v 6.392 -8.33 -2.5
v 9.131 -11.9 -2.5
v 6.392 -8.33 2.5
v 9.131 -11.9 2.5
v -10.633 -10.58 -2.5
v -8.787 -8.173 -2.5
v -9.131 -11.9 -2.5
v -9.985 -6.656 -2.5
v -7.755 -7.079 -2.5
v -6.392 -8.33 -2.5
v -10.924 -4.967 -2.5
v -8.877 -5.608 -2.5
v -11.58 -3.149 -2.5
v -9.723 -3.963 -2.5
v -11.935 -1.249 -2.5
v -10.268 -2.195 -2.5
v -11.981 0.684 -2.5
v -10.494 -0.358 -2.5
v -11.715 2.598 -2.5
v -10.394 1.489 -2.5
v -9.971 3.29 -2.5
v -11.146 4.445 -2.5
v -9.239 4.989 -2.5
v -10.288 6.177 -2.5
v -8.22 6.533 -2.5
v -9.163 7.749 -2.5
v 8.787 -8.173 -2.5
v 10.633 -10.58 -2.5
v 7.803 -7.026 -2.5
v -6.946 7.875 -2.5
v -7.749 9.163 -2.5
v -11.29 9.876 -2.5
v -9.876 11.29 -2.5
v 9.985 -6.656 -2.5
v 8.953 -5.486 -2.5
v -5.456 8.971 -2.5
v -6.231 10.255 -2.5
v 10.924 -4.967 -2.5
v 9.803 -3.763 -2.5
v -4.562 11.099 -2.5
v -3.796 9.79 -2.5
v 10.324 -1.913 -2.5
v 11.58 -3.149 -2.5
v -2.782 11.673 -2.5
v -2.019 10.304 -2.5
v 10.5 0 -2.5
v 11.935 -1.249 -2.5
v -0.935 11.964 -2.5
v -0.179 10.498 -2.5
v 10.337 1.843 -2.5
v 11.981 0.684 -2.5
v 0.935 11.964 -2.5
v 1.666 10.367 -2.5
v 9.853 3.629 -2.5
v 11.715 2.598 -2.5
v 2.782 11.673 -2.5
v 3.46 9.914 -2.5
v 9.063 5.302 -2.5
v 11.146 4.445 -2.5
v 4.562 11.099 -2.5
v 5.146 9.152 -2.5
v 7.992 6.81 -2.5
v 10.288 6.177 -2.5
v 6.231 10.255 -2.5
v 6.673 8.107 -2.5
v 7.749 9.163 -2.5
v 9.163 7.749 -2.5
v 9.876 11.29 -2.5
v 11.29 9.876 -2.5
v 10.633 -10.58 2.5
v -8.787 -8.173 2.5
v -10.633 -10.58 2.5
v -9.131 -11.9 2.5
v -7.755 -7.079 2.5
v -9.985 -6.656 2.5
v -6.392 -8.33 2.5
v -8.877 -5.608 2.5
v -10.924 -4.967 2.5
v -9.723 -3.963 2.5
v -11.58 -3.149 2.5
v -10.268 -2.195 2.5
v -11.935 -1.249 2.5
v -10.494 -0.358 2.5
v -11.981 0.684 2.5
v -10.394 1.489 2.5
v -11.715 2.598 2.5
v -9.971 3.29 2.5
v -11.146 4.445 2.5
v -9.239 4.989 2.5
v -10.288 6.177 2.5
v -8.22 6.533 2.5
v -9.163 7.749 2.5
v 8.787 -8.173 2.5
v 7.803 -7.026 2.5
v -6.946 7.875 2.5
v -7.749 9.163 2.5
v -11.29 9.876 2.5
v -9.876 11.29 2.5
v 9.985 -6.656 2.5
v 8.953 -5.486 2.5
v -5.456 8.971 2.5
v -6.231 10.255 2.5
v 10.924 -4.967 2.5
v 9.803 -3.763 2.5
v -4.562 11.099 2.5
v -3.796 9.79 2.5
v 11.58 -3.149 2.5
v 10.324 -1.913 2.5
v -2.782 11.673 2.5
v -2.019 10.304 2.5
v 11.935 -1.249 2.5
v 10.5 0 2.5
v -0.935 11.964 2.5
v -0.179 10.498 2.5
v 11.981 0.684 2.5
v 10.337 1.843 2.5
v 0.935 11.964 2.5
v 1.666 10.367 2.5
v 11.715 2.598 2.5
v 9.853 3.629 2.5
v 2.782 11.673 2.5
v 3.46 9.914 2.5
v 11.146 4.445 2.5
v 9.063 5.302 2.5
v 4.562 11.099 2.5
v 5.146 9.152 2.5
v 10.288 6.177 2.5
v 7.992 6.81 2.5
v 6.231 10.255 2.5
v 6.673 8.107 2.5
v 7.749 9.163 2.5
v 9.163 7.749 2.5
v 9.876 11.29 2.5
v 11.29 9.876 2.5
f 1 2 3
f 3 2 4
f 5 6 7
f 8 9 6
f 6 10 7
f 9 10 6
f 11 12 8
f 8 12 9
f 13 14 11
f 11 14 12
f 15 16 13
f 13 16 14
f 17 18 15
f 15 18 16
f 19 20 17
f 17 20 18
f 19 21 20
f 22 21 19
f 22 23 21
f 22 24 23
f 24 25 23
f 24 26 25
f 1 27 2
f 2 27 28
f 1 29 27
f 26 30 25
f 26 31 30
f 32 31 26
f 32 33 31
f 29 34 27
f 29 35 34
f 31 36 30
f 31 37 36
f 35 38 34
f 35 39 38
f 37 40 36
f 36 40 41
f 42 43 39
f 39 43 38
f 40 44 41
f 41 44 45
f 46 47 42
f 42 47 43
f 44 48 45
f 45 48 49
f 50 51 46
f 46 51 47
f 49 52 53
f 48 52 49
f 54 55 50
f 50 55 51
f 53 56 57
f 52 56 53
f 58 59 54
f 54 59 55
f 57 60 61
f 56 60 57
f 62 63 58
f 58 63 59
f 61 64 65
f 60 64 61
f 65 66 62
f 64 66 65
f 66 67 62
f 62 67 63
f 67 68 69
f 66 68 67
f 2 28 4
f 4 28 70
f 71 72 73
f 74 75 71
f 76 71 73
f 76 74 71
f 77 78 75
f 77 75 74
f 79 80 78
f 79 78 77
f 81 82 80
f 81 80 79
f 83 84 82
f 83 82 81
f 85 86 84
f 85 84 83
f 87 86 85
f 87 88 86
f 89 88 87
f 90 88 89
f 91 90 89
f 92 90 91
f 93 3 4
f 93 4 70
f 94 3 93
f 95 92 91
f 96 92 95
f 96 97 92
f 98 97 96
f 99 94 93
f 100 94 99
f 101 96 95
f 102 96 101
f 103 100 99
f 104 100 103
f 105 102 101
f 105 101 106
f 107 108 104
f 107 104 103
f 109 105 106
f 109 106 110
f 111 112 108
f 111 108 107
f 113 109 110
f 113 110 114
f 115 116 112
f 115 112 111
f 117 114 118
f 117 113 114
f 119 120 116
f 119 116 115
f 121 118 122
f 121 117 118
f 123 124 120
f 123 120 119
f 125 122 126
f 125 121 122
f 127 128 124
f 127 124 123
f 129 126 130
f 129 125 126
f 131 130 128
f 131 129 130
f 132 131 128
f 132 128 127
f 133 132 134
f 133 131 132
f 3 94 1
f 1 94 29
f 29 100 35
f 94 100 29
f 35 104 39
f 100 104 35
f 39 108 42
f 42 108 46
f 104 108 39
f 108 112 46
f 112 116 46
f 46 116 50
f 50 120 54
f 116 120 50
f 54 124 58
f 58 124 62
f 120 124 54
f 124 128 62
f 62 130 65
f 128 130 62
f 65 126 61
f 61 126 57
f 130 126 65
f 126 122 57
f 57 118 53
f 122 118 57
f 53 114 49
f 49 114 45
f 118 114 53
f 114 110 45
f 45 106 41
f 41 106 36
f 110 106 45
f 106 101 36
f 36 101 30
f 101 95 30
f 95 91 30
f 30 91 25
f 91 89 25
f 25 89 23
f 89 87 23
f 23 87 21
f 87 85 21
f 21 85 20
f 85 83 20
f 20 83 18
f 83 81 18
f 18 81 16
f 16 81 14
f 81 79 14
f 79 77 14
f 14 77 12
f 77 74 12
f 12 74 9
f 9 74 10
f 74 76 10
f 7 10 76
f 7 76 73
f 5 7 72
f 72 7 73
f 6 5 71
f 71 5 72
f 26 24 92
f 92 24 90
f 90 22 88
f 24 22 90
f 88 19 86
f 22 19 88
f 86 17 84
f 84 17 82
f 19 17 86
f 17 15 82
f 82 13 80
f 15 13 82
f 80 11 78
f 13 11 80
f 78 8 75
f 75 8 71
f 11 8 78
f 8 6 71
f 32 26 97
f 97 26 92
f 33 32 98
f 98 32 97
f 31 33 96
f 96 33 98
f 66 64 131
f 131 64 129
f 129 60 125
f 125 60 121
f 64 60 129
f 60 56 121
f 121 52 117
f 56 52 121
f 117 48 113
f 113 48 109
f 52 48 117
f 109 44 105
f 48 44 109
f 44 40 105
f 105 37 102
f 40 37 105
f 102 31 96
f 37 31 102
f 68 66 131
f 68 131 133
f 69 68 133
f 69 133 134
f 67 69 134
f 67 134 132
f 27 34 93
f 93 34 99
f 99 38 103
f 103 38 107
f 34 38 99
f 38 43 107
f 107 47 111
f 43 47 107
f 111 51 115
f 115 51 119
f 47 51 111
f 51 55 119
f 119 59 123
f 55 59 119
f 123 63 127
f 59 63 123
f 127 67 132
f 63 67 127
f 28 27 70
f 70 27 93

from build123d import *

# Parameters (mm, degrees)
PAD_DEPTH    = 2.5
SKETCH003_R  = 10.5
POCKET_DEPTH = 5


with BuildPart() as part:
    # Sketch → Pad (new body, symmetric)
    with BuildSketch(Plane.XY):
        with BuildLine():
            ThreePointArc((8.786596, -8.172865), (11.99665, -0.28352), (9.162874, 7.74866))
            Line((11.290112, 9.875898), (9.162874, 7.74866))
            Line((9.875898, 11.290112), (11.290112, 9.875898))
            Line((7.74866, 9.162874), (9.875898, 11.290112))
            ThreePointArc((7.74866, 9.162874), (0, 12), (-7.74866, 9.162874))
            Line((-7.74866, 9.162874), (-9.875898, 11.290112))
            Line((-9.875898, 11.290112), (-11.290112, 9.875898))
            Line((-11.290112, 9.875898), (-9.162874, 7.74866))
            ThreePointArc((-9.162874, 7.74866), (-11.99665, -0.28352), (-8.786596, -8.172865))
            Line((-8.786596, -8.172865), (-10.63343, -10.579705))
            Line((-10.63343, -10.579705), (-9.131421, -11.9003))
            Line((0, 0), (-9.131421, -11.9003))
            Line((0, 0), (9.131421, -11.9003))
            Line((9.131421, -11.9003), (10.63343, -10.579705))
            Line((10.63343, -10.579705), (8.786596, -8.172865))
        make_face()
    extrude(amount=PAD_DEPTH, both=True)

    # Sketch003 → Pocket (cut)
    with BuildSketch(Plane.XY.offset(2.5)):
        Circle(SKETCH003_R)
    extrude(amount=-POCKET_DEPTH, mode=Mode.SUBTRACT)


solid = part.part
